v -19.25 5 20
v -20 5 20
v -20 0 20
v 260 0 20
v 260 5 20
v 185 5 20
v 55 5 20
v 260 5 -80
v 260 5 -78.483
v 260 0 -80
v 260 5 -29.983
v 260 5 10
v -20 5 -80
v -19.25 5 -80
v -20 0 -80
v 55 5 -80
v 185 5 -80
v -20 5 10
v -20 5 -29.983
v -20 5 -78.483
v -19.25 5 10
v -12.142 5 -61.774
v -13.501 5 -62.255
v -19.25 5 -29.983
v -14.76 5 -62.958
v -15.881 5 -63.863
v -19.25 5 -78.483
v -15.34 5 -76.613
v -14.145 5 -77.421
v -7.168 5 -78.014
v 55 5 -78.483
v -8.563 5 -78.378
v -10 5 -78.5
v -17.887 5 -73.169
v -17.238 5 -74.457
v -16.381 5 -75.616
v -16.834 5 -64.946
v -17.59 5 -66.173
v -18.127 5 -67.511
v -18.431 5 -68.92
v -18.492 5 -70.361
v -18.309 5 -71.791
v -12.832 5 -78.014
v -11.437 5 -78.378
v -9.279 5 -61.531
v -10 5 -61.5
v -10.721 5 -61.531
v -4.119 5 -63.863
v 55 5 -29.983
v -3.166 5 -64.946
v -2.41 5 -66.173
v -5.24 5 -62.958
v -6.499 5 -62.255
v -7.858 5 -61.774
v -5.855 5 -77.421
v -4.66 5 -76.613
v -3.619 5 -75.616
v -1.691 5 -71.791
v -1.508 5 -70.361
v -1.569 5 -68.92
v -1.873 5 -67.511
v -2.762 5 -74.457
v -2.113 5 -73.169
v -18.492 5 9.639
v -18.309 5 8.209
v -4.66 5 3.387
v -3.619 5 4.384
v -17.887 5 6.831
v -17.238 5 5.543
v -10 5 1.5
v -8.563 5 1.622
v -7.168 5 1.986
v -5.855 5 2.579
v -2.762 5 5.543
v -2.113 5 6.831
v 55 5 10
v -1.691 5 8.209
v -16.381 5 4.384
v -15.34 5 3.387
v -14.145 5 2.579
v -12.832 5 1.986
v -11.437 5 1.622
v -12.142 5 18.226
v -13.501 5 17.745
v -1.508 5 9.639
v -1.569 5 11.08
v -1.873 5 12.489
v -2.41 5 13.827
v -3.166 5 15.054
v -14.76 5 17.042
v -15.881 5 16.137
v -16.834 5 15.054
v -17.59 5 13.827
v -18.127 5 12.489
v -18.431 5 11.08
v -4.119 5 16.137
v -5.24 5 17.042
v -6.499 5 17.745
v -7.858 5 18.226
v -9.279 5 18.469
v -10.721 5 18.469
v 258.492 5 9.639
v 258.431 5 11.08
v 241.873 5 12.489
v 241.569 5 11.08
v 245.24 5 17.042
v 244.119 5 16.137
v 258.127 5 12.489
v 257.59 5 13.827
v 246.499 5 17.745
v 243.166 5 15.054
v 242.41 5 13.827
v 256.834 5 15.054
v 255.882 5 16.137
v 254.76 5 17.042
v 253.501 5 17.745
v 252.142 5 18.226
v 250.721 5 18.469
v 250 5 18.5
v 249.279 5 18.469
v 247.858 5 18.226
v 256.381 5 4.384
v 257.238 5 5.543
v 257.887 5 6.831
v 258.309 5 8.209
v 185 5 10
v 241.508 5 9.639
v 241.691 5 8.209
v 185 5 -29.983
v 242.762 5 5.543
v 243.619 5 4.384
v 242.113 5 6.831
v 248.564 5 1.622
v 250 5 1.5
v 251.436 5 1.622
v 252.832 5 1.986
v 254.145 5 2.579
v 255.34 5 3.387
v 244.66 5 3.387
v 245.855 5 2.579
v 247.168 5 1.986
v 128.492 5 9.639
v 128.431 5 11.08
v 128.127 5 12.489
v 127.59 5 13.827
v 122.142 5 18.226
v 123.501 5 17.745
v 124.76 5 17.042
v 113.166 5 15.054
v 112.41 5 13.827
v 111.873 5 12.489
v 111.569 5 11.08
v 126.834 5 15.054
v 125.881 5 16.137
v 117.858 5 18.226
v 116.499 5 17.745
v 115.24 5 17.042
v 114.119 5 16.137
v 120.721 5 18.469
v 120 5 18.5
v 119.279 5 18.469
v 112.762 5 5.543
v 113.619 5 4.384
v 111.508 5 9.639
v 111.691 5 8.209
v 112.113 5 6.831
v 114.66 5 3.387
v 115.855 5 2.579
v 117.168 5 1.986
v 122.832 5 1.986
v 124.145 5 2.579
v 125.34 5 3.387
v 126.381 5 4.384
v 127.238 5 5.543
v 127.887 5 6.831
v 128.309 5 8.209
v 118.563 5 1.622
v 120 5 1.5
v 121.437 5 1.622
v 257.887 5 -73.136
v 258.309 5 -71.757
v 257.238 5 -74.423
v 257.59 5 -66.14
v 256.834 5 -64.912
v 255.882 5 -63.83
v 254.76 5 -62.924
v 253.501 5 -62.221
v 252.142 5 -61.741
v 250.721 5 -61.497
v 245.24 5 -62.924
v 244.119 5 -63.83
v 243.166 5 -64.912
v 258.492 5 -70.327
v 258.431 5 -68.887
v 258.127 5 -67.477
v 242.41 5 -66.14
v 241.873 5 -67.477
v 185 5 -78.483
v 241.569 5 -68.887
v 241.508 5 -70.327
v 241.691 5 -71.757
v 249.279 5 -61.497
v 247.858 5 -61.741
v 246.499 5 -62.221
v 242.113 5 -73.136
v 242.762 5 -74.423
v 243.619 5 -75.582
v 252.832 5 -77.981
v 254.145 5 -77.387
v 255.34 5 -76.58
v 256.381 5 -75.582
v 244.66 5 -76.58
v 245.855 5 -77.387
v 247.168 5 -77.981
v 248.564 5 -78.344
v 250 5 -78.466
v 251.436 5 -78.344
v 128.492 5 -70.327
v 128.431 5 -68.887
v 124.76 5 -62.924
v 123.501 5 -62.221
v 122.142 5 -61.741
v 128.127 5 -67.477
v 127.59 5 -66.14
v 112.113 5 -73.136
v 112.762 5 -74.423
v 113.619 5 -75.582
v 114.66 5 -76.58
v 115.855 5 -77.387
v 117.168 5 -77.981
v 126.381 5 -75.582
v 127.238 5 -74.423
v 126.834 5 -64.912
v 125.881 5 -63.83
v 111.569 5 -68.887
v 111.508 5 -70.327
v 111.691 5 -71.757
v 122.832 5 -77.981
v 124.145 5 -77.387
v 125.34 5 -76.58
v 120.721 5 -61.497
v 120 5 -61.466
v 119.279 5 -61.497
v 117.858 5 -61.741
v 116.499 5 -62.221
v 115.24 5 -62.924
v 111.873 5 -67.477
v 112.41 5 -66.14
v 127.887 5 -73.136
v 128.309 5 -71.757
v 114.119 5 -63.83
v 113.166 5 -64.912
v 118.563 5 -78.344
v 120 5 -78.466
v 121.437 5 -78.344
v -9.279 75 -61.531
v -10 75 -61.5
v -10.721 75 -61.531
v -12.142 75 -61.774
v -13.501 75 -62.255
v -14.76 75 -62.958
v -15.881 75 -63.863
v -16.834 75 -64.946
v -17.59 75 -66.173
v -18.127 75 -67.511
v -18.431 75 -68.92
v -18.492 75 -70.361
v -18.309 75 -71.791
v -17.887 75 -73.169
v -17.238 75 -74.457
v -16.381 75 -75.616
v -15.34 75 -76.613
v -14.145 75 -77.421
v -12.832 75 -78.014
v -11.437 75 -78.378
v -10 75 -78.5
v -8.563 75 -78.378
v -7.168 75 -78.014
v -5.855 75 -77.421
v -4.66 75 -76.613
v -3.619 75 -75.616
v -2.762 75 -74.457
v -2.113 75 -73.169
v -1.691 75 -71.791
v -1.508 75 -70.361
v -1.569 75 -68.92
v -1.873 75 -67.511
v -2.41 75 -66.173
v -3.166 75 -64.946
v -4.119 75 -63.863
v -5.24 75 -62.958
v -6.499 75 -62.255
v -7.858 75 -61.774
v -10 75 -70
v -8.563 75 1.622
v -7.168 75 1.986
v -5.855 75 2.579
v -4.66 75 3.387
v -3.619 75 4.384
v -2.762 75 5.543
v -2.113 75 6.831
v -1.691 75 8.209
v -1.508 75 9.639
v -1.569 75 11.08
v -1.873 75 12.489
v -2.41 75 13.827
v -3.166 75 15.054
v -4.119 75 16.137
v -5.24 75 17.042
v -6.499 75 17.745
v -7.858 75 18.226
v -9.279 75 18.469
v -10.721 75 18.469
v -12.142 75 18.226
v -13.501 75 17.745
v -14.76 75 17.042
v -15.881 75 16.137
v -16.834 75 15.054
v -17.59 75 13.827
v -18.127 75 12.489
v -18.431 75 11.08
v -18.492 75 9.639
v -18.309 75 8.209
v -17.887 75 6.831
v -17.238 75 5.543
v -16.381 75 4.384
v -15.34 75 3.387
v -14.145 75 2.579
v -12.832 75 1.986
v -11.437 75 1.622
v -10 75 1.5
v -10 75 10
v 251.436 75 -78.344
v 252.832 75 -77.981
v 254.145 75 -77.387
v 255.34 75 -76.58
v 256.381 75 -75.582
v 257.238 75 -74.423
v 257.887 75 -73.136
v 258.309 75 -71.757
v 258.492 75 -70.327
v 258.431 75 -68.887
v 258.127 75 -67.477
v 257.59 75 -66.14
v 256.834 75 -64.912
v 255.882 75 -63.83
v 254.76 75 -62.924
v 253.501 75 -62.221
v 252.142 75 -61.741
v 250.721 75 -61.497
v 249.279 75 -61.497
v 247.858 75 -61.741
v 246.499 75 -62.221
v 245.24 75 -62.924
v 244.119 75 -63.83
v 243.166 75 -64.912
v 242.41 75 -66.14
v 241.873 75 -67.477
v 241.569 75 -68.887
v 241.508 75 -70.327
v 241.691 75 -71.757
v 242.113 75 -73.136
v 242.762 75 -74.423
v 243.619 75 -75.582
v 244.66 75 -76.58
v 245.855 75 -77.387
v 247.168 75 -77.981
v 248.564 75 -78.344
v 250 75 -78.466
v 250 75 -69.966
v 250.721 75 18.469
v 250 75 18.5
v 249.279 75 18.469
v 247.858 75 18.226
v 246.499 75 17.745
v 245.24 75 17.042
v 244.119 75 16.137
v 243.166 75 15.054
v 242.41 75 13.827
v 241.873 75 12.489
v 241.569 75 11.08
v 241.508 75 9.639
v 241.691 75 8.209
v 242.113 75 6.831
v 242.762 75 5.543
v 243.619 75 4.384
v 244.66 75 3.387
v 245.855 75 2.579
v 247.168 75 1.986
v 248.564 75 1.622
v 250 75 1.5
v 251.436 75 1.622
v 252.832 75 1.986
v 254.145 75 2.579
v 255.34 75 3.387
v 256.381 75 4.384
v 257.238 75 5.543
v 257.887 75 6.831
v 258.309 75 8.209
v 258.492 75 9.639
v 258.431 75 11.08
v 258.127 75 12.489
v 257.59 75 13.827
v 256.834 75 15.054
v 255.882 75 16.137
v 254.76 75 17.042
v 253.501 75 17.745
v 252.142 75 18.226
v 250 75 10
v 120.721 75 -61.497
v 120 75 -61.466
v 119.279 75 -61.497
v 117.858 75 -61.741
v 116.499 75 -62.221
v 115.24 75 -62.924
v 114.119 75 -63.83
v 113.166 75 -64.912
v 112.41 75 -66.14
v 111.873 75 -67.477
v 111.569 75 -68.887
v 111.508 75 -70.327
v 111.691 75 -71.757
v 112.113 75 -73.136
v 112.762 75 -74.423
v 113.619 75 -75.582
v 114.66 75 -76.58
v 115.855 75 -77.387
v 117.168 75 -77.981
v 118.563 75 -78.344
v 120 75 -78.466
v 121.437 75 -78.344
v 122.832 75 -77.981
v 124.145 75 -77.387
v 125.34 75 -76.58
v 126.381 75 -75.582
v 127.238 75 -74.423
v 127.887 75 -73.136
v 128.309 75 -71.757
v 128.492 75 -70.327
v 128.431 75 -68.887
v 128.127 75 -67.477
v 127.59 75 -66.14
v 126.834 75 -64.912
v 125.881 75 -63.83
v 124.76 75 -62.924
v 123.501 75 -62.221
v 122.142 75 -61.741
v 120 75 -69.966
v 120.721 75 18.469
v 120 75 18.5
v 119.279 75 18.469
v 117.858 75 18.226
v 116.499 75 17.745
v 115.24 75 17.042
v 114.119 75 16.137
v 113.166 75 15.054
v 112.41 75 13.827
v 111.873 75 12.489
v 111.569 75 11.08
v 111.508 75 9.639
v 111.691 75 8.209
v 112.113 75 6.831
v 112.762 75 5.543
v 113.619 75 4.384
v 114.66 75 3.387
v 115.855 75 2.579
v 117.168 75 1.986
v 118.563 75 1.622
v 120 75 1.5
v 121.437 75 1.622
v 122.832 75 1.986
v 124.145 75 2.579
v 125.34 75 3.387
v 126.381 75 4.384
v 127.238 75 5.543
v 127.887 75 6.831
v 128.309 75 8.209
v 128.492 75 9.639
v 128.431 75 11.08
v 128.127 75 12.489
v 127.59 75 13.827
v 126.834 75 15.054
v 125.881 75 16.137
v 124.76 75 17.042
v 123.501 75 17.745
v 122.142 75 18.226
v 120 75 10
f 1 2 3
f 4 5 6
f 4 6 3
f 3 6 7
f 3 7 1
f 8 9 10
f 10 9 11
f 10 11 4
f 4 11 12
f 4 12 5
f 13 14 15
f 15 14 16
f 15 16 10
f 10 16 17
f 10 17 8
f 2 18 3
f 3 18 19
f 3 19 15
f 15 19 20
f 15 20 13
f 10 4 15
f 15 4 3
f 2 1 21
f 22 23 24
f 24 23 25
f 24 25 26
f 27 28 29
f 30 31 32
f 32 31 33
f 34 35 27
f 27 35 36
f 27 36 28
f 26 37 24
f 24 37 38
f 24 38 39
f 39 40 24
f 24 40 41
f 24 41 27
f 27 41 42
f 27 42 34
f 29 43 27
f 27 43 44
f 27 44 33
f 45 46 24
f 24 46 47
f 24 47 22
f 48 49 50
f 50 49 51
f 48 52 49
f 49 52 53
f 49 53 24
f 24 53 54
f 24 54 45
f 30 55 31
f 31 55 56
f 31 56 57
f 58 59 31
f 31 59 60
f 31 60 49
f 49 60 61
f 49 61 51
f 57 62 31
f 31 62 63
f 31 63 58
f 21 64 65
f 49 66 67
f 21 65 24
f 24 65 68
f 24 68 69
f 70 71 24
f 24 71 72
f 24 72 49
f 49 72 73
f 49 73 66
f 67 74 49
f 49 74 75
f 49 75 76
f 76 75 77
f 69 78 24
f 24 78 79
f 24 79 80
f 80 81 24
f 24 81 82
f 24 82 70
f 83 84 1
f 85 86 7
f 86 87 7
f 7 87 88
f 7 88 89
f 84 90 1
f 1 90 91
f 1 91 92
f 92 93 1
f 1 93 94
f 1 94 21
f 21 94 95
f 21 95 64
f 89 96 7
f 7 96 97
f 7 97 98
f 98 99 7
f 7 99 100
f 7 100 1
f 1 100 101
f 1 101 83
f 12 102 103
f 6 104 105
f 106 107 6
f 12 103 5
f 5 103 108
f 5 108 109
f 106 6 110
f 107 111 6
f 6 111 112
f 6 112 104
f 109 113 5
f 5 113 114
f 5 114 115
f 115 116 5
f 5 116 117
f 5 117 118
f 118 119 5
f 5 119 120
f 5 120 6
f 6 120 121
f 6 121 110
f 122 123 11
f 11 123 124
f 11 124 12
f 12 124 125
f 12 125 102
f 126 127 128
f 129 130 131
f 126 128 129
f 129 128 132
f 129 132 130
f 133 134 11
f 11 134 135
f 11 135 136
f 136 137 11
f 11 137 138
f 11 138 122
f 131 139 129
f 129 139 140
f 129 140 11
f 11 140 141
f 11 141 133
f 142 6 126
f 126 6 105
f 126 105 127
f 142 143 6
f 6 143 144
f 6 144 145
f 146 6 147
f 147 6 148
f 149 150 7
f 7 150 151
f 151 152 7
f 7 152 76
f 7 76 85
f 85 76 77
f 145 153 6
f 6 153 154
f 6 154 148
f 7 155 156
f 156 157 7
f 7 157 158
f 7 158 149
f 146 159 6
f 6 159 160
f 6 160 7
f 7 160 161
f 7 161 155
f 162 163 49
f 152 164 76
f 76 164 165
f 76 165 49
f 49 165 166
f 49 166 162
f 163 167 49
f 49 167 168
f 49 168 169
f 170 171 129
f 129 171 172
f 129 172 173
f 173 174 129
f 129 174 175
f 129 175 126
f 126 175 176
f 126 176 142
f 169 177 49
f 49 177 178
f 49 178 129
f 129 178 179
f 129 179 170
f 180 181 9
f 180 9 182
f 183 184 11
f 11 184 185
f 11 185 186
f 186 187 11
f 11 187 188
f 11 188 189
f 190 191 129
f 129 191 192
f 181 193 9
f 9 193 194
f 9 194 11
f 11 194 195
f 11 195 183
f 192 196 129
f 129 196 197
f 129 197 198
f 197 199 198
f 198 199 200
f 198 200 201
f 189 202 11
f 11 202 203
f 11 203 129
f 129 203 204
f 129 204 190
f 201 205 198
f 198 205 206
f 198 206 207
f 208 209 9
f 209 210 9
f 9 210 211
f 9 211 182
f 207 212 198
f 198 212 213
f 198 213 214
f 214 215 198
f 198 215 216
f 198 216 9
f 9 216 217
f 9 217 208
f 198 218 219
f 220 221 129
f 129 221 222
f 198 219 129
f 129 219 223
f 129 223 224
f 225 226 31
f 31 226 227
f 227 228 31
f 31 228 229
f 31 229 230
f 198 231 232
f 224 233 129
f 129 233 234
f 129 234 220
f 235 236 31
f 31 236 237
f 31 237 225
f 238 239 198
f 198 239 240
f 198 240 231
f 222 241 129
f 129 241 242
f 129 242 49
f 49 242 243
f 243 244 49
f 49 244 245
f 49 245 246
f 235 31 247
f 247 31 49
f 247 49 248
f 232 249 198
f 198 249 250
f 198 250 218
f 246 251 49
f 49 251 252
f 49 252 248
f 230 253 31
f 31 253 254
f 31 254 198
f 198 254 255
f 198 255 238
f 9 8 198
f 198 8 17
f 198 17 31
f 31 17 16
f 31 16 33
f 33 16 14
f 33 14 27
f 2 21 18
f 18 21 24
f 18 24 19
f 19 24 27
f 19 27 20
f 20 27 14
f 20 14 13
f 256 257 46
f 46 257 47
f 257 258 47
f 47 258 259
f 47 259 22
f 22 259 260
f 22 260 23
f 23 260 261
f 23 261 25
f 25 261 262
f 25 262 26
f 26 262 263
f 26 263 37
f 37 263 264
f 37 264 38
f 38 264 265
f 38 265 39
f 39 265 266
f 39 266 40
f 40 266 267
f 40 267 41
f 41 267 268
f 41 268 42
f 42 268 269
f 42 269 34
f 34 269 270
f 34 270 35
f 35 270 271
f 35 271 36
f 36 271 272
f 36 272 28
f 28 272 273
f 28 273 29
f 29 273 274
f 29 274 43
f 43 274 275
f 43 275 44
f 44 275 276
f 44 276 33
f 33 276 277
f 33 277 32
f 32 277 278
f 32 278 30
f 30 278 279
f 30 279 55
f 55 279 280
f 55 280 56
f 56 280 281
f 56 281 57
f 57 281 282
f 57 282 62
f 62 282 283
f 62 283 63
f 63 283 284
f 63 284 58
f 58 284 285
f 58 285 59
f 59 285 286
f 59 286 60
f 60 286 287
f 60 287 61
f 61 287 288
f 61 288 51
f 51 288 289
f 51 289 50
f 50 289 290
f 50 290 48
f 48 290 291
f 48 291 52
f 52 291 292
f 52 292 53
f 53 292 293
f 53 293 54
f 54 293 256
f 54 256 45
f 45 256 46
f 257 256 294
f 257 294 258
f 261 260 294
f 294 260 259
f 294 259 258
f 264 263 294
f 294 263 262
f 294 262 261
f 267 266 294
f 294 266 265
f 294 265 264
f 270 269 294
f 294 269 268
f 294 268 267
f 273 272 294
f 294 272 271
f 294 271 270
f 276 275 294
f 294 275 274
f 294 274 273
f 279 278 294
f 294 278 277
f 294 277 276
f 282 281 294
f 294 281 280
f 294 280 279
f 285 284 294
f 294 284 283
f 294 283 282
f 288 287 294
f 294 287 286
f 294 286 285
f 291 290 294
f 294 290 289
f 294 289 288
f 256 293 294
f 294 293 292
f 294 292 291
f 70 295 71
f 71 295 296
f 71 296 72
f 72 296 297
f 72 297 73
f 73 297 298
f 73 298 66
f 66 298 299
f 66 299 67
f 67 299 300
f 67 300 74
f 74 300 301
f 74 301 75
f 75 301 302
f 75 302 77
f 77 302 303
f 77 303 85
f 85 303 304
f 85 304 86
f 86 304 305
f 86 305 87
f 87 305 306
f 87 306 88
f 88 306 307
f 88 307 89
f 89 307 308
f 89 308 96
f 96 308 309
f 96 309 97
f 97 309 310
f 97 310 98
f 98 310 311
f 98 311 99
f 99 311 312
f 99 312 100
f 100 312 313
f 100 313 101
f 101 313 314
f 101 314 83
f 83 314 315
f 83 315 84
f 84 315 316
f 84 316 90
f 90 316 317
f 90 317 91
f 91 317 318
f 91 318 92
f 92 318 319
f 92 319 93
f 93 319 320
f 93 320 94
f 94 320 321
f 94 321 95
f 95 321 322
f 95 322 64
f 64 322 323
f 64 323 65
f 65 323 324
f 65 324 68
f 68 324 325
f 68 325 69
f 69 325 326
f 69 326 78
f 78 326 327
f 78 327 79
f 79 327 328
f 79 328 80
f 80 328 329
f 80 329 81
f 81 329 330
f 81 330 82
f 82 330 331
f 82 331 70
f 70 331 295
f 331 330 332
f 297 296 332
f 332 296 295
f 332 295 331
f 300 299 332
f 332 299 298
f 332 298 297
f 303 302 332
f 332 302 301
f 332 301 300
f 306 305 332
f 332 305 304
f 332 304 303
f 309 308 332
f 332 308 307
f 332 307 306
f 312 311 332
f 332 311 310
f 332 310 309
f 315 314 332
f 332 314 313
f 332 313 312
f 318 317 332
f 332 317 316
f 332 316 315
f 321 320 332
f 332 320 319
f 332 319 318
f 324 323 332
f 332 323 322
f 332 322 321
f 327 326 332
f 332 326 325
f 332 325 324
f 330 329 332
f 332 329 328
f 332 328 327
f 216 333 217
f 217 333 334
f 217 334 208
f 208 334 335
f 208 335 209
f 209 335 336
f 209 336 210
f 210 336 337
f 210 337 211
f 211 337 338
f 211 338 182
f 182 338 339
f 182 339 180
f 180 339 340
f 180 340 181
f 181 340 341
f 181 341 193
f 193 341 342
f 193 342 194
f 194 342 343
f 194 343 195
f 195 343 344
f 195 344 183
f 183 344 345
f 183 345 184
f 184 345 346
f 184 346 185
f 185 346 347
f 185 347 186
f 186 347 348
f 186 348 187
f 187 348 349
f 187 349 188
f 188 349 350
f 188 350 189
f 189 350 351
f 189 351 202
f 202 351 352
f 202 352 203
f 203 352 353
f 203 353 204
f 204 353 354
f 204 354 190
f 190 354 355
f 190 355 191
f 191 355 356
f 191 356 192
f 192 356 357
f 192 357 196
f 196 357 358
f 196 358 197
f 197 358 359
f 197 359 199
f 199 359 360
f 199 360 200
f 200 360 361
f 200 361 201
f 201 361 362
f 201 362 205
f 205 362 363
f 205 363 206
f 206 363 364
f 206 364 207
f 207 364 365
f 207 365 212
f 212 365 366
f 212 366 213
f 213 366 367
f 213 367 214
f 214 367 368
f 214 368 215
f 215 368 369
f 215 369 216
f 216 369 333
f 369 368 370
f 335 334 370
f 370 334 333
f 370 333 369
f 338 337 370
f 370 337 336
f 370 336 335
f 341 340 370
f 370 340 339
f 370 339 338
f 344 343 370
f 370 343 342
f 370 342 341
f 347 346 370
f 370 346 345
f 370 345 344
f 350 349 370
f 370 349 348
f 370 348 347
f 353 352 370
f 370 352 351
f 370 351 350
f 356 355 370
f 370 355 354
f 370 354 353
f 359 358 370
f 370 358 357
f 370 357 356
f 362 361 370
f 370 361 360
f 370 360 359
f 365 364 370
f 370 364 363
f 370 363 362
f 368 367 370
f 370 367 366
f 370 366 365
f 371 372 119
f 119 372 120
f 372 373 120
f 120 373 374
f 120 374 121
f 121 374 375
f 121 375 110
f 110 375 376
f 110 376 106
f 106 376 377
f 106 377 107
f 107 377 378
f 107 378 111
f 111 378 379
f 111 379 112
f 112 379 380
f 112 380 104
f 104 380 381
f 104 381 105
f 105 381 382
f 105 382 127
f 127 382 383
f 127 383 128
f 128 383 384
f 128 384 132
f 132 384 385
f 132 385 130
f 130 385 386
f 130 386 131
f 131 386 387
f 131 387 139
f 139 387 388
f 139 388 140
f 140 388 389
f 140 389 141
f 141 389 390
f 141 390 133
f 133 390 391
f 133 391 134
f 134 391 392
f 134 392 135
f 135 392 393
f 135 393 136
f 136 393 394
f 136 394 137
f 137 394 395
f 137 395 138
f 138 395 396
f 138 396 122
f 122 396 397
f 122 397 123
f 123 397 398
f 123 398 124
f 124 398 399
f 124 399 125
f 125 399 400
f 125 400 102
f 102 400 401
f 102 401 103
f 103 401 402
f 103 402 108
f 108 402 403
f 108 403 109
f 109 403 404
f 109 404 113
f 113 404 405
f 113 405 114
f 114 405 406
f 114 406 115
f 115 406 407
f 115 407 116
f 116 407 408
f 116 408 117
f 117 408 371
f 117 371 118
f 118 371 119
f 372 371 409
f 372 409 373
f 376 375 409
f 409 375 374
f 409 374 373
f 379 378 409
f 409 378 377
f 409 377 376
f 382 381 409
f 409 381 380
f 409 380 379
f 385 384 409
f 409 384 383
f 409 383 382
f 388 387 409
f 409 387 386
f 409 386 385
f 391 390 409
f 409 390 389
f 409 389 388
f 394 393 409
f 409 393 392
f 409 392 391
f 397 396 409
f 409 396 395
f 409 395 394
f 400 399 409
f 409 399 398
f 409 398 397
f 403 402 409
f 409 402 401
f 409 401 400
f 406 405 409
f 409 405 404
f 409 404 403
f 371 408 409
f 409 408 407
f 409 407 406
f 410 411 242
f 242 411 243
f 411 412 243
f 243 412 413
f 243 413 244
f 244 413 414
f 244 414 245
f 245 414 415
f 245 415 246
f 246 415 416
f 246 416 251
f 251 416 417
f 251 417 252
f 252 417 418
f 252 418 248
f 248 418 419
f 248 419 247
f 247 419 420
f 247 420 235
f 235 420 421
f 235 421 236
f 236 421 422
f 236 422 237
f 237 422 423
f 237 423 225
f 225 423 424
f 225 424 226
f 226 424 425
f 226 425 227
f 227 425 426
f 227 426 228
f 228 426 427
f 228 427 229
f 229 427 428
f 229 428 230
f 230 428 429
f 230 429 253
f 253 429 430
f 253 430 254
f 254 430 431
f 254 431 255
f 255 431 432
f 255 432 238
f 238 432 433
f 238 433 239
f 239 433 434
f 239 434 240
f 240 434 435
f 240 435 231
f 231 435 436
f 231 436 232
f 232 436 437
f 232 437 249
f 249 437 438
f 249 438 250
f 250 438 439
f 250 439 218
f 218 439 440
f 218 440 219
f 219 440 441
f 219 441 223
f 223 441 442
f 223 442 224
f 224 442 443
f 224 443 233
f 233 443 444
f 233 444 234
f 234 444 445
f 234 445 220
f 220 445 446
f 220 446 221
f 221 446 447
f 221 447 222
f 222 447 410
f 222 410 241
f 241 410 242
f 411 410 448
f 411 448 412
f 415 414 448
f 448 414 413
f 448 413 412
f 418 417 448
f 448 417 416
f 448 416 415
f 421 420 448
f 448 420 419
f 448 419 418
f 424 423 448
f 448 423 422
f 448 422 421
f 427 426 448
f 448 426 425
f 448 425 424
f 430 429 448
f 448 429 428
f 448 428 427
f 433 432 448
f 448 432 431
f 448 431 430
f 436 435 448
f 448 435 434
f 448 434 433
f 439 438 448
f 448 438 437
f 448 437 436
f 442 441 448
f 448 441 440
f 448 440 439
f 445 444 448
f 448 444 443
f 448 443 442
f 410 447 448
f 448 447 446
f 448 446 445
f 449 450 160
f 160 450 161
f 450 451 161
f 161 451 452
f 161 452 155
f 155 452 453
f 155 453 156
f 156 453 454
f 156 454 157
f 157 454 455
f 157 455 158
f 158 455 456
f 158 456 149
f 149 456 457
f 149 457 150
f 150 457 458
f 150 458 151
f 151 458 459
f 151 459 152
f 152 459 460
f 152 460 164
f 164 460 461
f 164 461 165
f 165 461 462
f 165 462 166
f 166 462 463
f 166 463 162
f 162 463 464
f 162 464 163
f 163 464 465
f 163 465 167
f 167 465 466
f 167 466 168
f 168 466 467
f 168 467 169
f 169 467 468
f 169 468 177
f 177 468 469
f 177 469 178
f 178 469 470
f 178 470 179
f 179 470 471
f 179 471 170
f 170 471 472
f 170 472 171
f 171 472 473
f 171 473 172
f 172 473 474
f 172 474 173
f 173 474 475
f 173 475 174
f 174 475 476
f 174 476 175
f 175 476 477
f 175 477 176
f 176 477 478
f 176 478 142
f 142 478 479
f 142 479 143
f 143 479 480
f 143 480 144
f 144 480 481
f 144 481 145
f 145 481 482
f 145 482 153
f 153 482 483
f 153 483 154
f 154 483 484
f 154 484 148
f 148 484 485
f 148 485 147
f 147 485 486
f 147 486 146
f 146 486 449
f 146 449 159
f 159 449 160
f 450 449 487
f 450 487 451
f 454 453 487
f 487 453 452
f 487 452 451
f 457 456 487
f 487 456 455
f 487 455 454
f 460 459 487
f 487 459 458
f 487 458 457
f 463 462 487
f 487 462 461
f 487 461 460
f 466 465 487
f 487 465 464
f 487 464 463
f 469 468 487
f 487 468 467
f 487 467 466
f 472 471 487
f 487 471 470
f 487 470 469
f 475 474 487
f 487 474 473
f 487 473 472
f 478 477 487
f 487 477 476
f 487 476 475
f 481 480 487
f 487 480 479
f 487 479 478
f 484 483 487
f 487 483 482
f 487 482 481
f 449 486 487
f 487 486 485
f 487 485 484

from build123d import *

# Parameters (mm, degrees)
IZIM1_W                     = 280
IZIM1_H                     = 100
Y_KSEKLIK_EKSTR_ZYON6_DEPTH = 5
IZIM16_R                    = 8.5
Y_KSEKLIK_EKSTR_ZYON7_DEPTH = 70


with BuildPart() as part:
    # Çizim1 → Yükseklik-Ekstrüzyon6 (new body)
    with BuildSketch(Plane(origin=(0, 0, 0), x_dir=(1, 0, 0), z_dir=(0, 1, 0))):
        with Locations((120, 30)):
            Rectangle(IZIM1_W, IZIM1_H)
    extrude(amount=Y_KSEKLIK_EKSTR_ZYON6_DEPTH)

    # Çizim16 → Yükseklik-Ekstrüzyon7 (add)
    with BuildSketch(Plane(origin=(0, 5, 0), x_dir=(1, 0, 0), z_dir=(0, 1, 0))):
        with Locations(Location((-10, 70, 0), (0, 0, 270))):
            Circle(IZIM16_R)
        with Locations(Location((-10, -10, 0), (0, 0, 90))):
            Circle(IZIM16_R)
        with Locations(Location((250, 69.966428456, 0), (0, 0, 90))):
            Circle(IZIM16_R)
        with Locations(Location((250, -10, 0), (0, 0, 270))):
            Circle(IZIM16_R)
        with Locations(Location((120, 69.966428456, 0), (0, 0, 270))):
            Circle(IZIM16_R)
        with Locations(Location((120, -10, 0), (0, 0, 270))):
            Circle(IZIM16_R)
    extrude(amount=Y_KSEKLIK_EKSTR_ZYON7_DEPTH)


solid = part.part
